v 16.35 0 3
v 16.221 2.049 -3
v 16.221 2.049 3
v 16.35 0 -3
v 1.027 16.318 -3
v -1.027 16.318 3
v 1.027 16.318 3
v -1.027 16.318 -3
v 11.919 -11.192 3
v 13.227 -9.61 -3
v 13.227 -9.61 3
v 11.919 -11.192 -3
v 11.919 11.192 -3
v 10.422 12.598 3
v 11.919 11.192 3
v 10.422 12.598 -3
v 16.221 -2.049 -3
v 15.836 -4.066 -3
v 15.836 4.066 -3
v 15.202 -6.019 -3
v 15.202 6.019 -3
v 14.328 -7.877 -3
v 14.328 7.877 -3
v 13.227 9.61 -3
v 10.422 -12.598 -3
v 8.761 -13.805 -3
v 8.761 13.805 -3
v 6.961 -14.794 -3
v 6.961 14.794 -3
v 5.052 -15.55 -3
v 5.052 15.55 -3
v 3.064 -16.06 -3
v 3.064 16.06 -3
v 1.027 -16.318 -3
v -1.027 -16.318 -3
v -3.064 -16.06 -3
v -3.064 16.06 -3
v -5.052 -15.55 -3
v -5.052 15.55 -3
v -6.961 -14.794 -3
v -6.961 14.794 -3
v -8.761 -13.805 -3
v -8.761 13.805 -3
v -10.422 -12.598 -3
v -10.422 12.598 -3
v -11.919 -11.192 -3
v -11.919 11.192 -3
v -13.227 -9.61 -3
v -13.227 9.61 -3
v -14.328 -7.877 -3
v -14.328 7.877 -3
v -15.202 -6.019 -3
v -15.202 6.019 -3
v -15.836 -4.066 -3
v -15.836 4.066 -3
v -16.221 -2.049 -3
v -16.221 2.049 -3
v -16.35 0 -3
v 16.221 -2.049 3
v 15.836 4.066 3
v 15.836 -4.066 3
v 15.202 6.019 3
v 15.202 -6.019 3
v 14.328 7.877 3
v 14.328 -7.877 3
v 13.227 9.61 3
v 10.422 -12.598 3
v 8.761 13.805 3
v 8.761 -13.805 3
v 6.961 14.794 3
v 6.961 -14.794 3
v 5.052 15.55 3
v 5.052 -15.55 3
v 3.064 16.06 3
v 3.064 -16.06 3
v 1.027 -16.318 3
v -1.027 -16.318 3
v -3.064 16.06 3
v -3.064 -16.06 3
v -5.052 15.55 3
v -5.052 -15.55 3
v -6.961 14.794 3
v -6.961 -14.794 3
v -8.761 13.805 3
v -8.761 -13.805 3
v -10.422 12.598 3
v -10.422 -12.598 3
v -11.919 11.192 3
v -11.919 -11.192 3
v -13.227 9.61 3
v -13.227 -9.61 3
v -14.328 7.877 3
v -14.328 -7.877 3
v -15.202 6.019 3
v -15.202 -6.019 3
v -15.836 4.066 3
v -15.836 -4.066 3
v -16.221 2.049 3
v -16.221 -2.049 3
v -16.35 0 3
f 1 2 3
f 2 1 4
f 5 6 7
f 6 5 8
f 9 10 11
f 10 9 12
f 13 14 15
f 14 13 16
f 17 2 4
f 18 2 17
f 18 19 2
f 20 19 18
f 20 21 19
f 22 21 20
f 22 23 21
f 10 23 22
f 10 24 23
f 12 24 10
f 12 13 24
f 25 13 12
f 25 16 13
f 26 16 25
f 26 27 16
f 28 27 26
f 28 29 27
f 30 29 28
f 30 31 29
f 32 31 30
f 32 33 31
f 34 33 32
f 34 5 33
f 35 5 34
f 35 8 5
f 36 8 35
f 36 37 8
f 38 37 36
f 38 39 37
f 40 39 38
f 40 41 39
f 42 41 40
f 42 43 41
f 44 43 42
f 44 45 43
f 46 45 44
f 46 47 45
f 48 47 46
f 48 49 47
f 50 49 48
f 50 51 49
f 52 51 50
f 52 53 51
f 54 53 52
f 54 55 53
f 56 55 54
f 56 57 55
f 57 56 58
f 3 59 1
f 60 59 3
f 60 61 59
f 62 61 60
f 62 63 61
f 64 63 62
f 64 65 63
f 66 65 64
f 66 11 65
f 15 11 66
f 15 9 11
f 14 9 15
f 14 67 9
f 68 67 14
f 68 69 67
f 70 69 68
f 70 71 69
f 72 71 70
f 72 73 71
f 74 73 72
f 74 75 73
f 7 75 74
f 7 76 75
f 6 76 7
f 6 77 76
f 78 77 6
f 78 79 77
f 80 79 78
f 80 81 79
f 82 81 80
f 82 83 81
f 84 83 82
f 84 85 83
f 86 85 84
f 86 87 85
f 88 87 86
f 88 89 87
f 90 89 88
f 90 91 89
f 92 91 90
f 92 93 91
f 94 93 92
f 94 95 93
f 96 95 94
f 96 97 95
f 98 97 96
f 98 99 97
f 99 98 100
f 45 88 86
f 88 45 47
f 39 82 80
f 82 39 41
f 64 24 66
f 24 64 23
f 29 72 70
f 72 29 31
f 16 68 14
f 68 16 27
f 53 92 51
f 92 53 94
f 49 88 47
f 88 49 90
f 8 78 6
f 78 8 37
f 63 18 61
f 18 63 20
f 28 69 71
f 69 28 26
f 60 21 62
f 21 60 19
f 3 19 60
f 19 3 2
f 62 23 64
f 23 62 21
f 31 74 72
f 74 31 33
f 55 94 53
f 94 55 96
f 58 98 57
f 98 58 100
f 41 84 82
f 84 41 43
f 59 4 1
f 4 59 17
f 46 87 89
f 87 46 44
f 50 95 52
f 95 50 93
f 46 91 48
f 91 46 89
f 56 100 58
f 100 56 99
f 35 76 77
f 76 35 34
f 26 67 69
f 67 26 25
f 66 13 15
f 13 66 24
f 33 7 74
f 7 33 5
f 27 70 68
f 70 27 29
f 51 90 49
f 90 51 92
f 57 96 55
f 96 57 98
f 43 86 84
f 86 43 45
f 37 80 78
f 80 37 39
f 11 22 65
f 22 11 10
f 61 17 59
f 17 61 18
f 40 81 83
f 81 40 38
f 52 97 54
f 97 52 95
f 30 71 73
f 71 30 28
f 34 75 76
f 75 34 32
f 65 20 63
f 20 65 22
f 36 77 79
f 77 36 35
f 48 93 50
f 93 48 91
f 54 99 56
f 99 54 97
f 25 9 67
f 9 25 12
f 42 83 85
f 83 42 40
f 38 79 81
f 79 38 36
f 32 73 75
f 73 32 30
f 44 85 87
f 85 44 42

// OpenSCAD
$fn = 50;


difference() {
	union() {
		translate(v = [0, 0, -3.0000000000]) {
			cylinder(h = 6, r = 16.3500000000);
		}
	}
	union() {
		translate(v = [0, 0, -100.0000000000]) {
			cylinder(h = 200, r = 0);
		}
	}
}
